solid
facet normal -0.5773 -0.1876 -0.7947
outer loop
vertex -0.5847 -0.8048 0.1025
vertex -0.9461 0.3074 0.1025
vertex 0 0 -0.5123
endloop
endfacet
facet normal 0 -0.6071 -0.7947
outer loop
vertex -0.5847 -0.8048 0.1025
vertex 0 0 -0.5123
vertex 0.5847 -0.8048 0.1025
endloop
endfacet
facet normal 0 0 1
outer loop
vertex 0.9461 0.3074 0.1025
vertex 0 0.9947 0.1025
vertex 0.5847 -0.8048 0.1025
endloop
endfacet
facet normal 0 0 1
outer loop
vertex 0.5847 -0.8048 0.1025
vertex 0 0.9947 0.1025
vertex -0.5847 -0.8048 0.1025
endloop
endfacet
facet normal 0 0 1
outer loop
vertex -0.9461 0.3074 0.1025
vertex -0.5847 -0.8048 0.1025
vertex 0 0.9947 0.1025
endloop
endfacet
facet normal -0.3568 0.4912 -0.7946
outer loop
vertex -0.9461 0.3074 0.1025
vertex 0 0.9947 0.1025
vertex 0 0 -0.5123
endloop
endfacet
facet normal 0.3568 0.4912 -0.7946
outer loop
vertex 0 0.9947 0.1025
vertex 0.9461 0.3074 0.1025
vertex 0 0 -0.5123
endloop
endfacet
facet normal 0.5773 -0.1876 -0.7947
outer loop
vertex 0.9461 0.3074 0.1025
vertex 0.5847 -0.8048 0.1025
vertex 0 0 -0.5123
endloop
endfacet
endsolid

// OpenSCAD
polyhedron( points = [[-0.584691598930237, -0.804758945835351, 0.102463521500955], [-0.946050879972378, 0.307390564637409, 0.102463521500955], [6.01812014879426e-11, 0.994736762482208, 0.102463521500955], [0.946050879969305, 0.307390564467511, 0.102463521500955], [0.584691598871957, -0.804758945835351, 0.102463521500955], [1.17182405372092e-12, 8.35741903113088e-11, -0.512317607504776]], faces = [[0, 1, 5], [0, 5, 4], [0, 4, 3, 2, 1], [1, 2, 5], [2, 3, 5], [3, 4, 5]]);
